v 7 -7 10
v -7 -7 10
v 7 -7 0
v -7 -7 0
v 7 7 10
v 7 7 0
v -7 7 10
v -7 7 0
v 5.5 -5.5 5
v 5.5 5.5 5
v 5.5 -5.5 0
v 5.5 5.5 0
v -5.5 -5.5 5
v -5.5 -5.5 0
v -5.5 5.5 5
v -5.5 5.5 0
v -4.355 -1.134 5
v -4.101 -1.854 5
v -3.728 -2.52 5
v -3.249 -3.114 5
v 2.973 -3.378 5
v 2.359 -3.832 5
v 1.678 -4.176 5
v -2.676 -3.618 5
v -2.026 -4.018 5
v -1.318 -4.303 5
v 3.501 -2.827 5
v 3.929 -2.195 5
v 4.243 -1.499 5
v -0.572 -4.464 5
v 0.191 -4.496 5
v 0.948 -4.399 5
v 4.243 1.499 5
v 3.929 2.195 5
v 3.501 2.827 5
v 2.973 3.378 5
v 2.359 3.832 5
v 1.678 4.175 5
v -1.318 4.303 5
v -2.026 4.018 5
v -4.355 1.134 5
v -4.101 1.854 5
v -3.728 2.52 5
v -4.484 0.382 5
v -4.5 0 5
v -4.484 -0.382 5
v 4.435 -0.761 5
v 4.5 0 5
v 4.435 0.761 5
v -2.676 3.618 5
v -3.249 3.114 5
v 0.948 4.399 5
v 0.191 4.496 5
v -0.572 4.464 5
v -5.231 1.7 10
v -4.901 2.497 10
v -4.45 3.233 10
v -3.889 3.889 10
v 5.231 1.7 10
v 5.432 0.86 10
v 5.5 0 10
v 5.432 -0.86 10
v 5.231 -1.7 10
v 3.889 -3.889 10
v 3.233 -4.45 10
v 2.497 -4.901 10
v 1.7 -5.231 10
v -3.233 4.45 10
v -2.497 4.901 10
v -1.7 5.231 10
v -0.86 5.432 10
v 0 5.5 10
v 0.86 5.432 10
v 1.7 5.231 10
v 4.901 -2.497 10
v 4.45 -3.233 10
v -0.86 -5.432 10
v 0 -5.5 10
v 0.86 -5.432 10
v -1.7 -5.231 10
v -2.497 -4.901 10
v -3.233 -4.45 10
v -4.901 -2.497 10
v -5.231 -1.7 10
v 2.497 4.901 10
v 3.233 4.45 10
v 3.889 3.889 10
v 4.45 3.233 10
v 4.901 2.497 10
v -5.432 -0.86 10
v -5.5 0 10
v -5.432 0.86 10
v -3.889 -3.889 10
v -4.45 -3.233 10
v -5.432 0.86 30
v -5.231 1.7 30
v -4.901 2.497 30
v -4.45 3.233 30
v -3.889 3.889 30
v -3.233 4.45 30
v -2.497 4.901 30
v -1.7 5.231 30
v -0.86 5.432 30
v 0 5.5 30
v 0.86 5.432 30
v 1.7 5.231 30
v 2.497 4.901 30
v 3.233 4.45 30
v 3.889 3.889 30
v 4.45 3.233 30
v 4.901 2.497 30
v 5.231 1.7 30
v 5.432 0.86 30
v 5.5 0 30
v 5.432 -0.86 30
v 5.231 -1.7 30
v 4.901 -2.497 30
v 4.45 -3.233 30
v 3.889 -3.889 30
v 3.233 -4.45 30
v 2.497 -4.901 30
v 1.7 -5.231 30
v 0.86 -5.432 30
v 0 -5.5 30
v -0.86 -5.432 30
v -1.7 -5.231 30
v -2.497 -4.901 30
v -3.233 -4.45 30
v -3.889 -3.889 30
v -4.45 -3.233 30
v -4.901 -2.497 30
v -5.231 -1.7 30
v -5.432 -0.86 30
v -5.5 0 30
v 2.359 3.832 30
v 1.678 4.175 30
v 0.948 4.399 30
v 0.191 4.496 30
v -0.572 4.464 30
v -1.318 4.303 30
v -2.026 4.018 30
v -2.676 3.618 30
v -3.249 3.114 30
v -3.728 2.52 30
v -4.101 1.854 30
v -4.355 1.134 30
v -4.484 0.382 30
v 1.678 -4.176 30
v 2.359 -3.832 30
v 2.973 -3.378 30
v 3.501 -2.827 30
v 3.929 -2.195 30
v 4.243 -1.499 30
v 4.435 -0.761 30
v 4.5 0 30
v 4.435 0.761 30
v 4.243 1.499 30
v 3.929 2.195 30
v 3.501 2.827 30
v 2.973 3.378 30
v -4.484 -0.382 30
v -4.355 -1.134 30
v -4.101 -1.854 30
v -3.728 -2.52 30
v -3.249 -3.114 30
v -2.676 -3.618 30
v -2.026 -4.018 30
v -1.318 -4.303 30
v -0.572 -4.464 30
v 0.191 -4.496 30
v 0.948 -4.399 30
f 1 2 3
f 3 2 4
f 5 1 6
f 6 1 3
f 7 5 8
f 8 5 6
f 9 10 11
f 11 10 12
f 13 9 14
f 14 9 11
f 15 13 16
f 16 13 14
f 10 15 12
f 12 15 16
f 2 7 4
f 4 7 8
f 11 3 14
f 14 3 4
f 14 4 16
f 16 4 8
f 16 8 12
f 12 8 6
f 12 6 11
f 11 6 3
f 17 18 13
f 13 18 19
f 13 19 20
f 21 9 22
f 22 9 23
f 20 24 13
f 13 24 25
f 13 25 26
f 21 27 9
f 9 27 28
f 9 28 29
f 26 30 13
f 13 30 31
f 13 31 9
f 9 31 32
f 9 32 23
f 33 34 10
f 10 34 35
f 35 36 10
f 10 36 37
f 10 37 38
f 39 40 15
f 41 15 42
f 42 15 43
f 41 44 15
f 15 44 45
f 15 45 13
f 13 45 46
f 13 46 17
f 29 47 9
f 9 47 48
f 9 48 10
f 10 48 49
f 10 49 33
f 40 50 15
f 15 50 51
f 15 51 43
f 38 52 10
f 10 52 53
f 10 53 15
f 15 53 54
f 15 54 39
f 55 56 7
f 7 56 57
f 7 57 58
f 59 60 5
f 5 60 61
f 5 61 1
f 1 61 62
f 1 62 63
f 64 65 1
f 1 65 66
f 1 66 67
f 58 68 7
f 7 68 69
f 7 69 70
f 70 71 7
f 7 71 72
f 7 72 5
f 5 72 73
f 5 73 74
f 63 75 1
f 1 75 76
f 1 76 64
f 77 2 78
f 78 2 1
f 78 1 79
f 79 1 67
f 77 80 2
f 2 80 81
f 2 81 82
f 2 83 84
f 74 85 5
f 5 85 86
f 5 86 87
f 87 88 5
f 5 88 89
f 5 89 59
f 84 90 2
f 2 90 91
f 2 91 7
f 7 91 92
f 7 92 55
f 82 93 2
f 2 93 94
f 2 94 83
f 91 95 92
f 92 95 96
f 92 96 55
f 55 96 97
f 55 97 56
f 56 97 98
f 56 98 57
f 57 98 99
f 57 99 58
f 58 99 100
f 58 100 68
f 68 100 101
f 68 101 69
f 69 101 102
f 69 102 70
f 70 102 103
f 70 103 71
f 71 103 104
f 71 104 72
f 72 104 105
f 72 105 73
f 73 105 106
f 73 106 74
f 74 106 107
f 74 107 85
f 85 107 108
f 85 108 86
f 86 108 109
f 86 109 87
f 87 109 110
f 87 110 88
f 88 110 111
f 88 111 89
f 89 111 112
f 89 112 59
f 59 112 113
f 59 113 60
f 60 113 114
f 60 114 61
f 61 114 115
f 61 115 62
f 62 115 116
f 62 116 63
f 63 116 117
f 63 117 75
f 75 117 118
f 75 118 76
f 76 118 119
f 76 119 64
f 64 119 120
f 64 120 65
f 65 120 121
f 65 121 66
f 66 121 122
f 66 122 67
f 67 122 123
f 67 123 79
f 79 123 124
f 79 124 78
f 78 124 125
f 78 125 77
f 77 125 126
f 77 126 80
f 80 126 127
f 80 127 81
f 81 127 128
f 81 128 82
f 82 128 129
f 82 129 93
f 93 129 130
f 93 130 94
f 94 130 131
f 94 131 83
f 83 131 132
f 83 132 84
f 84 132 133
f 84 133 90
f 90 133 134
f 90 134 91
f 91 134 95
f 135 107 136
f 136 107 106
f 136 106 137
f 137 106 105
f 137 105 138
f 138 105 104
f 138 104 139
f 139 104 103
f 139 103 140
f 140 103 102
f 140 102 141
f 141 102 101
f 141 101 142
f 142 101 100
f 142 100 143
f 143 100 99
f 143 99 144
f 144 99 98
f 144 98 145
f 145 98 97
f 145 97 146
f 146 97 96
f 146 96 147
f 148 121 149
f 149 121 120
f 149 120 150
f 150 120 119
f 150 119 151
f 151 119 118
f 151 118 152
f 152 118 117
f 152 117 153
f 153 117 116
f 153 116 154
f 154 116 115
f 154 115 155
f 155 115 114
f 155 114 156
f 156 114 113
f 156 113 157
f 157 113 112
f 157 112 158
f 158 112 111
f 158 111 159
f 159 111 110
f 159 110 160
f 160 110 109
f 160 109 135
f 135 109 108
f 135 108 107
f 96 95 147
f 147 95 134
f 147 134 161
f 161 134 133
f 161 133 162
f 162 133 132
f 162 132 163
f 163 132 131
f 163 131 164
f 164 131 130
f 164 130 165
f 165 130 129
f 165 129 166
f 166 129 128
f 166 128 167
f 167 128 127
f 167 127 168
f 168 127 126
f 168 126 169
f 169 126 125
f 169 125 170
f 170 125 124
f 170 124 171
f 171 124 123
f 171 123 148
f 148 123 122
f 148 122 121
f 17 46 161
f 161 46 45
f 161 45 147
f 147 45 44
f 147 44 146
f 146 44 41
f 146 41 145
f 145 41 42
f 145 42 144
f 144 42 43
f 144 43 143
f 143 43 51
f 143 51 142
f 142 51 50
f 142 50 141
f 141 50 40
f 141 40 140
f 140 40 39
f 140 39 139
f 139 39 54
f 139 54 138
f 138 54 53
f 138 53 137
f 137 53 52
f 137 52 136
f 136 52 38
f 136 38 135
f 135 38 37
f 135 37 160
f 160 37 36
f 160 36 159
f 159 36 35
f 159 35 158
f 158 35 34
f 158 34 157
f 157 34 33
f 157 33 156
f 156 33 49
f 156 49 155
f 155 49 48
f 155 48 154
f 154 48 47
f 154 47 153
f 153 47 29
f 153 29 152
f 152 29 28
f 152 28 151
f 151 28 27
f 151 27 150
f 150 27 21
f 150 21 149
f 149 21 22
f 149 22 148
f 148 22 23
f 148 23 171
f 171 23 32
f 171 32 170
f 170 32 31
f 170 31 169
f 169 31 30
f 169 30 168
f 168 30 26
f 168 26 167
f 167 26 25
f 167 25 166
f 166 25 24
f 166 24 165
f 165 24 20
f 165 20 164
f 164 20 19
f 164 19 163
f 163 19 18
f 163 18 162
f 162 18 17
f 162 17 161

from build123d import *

# Parameters (mm, degrees)
SKETCH_1_W          = 14
SKETCH_1_H          = 14
SKETCH_1_W_2        = 11
SKETCH_1_H_2        = 11
EXTRUDE_1_DEPTH     = 5
SKETCH_2_W          = 14
SKETCH_2_H          = 14
EXTRUDE_2_DEPTH     = 5
SKETCH_3_R          = 5.5
EXTRUDE_3_DEPTH     = 20
SKETCH_4_R          = 4.5
CUT_EXTRUDE_1_DEPTH = 32.591137998


with BuildPart() as part:
    # 草图1 → 凸台-拉伸1 (new body)
    with BuildSketch(Plane.XY):
        Rectangle(SKETCH_1_W, SKETCH_1_H)
        Rectangle(SKETCH_1_W_2, SKETCH_1_H_2, mode=Mode.SUBTRACT)
    extrude(amount=EXTRUDE_1_DEPTH)

    # 草图2 → 凸台-拉伸2 (add)
    with BuildSketch(Plane.XY.offset(5)):
        Rectangle(SKETCH_2_W, SKETCH_2_H)
    extrude(amount=EXTRUDE_2_DEPTH)

    # 草图3 → 凸台-拉伸3 (add)
    with BuildSketch(Plane.XY.offset(10)):
        Circle(SKETCH_3_R)
    extrude(amount=EXTRUDE_3_DEPTH)

    # 草图4 → 切除-拉伸1 (cut, through all)
    with BuildSketch(Plane.XY.offset(30)):
        Circle(SKETCH_4_R)
    extrude(amount=-CUT_EXTRUDE_1_DEPTH, mode=Mode.SUBTRACT)


solid = part.part
